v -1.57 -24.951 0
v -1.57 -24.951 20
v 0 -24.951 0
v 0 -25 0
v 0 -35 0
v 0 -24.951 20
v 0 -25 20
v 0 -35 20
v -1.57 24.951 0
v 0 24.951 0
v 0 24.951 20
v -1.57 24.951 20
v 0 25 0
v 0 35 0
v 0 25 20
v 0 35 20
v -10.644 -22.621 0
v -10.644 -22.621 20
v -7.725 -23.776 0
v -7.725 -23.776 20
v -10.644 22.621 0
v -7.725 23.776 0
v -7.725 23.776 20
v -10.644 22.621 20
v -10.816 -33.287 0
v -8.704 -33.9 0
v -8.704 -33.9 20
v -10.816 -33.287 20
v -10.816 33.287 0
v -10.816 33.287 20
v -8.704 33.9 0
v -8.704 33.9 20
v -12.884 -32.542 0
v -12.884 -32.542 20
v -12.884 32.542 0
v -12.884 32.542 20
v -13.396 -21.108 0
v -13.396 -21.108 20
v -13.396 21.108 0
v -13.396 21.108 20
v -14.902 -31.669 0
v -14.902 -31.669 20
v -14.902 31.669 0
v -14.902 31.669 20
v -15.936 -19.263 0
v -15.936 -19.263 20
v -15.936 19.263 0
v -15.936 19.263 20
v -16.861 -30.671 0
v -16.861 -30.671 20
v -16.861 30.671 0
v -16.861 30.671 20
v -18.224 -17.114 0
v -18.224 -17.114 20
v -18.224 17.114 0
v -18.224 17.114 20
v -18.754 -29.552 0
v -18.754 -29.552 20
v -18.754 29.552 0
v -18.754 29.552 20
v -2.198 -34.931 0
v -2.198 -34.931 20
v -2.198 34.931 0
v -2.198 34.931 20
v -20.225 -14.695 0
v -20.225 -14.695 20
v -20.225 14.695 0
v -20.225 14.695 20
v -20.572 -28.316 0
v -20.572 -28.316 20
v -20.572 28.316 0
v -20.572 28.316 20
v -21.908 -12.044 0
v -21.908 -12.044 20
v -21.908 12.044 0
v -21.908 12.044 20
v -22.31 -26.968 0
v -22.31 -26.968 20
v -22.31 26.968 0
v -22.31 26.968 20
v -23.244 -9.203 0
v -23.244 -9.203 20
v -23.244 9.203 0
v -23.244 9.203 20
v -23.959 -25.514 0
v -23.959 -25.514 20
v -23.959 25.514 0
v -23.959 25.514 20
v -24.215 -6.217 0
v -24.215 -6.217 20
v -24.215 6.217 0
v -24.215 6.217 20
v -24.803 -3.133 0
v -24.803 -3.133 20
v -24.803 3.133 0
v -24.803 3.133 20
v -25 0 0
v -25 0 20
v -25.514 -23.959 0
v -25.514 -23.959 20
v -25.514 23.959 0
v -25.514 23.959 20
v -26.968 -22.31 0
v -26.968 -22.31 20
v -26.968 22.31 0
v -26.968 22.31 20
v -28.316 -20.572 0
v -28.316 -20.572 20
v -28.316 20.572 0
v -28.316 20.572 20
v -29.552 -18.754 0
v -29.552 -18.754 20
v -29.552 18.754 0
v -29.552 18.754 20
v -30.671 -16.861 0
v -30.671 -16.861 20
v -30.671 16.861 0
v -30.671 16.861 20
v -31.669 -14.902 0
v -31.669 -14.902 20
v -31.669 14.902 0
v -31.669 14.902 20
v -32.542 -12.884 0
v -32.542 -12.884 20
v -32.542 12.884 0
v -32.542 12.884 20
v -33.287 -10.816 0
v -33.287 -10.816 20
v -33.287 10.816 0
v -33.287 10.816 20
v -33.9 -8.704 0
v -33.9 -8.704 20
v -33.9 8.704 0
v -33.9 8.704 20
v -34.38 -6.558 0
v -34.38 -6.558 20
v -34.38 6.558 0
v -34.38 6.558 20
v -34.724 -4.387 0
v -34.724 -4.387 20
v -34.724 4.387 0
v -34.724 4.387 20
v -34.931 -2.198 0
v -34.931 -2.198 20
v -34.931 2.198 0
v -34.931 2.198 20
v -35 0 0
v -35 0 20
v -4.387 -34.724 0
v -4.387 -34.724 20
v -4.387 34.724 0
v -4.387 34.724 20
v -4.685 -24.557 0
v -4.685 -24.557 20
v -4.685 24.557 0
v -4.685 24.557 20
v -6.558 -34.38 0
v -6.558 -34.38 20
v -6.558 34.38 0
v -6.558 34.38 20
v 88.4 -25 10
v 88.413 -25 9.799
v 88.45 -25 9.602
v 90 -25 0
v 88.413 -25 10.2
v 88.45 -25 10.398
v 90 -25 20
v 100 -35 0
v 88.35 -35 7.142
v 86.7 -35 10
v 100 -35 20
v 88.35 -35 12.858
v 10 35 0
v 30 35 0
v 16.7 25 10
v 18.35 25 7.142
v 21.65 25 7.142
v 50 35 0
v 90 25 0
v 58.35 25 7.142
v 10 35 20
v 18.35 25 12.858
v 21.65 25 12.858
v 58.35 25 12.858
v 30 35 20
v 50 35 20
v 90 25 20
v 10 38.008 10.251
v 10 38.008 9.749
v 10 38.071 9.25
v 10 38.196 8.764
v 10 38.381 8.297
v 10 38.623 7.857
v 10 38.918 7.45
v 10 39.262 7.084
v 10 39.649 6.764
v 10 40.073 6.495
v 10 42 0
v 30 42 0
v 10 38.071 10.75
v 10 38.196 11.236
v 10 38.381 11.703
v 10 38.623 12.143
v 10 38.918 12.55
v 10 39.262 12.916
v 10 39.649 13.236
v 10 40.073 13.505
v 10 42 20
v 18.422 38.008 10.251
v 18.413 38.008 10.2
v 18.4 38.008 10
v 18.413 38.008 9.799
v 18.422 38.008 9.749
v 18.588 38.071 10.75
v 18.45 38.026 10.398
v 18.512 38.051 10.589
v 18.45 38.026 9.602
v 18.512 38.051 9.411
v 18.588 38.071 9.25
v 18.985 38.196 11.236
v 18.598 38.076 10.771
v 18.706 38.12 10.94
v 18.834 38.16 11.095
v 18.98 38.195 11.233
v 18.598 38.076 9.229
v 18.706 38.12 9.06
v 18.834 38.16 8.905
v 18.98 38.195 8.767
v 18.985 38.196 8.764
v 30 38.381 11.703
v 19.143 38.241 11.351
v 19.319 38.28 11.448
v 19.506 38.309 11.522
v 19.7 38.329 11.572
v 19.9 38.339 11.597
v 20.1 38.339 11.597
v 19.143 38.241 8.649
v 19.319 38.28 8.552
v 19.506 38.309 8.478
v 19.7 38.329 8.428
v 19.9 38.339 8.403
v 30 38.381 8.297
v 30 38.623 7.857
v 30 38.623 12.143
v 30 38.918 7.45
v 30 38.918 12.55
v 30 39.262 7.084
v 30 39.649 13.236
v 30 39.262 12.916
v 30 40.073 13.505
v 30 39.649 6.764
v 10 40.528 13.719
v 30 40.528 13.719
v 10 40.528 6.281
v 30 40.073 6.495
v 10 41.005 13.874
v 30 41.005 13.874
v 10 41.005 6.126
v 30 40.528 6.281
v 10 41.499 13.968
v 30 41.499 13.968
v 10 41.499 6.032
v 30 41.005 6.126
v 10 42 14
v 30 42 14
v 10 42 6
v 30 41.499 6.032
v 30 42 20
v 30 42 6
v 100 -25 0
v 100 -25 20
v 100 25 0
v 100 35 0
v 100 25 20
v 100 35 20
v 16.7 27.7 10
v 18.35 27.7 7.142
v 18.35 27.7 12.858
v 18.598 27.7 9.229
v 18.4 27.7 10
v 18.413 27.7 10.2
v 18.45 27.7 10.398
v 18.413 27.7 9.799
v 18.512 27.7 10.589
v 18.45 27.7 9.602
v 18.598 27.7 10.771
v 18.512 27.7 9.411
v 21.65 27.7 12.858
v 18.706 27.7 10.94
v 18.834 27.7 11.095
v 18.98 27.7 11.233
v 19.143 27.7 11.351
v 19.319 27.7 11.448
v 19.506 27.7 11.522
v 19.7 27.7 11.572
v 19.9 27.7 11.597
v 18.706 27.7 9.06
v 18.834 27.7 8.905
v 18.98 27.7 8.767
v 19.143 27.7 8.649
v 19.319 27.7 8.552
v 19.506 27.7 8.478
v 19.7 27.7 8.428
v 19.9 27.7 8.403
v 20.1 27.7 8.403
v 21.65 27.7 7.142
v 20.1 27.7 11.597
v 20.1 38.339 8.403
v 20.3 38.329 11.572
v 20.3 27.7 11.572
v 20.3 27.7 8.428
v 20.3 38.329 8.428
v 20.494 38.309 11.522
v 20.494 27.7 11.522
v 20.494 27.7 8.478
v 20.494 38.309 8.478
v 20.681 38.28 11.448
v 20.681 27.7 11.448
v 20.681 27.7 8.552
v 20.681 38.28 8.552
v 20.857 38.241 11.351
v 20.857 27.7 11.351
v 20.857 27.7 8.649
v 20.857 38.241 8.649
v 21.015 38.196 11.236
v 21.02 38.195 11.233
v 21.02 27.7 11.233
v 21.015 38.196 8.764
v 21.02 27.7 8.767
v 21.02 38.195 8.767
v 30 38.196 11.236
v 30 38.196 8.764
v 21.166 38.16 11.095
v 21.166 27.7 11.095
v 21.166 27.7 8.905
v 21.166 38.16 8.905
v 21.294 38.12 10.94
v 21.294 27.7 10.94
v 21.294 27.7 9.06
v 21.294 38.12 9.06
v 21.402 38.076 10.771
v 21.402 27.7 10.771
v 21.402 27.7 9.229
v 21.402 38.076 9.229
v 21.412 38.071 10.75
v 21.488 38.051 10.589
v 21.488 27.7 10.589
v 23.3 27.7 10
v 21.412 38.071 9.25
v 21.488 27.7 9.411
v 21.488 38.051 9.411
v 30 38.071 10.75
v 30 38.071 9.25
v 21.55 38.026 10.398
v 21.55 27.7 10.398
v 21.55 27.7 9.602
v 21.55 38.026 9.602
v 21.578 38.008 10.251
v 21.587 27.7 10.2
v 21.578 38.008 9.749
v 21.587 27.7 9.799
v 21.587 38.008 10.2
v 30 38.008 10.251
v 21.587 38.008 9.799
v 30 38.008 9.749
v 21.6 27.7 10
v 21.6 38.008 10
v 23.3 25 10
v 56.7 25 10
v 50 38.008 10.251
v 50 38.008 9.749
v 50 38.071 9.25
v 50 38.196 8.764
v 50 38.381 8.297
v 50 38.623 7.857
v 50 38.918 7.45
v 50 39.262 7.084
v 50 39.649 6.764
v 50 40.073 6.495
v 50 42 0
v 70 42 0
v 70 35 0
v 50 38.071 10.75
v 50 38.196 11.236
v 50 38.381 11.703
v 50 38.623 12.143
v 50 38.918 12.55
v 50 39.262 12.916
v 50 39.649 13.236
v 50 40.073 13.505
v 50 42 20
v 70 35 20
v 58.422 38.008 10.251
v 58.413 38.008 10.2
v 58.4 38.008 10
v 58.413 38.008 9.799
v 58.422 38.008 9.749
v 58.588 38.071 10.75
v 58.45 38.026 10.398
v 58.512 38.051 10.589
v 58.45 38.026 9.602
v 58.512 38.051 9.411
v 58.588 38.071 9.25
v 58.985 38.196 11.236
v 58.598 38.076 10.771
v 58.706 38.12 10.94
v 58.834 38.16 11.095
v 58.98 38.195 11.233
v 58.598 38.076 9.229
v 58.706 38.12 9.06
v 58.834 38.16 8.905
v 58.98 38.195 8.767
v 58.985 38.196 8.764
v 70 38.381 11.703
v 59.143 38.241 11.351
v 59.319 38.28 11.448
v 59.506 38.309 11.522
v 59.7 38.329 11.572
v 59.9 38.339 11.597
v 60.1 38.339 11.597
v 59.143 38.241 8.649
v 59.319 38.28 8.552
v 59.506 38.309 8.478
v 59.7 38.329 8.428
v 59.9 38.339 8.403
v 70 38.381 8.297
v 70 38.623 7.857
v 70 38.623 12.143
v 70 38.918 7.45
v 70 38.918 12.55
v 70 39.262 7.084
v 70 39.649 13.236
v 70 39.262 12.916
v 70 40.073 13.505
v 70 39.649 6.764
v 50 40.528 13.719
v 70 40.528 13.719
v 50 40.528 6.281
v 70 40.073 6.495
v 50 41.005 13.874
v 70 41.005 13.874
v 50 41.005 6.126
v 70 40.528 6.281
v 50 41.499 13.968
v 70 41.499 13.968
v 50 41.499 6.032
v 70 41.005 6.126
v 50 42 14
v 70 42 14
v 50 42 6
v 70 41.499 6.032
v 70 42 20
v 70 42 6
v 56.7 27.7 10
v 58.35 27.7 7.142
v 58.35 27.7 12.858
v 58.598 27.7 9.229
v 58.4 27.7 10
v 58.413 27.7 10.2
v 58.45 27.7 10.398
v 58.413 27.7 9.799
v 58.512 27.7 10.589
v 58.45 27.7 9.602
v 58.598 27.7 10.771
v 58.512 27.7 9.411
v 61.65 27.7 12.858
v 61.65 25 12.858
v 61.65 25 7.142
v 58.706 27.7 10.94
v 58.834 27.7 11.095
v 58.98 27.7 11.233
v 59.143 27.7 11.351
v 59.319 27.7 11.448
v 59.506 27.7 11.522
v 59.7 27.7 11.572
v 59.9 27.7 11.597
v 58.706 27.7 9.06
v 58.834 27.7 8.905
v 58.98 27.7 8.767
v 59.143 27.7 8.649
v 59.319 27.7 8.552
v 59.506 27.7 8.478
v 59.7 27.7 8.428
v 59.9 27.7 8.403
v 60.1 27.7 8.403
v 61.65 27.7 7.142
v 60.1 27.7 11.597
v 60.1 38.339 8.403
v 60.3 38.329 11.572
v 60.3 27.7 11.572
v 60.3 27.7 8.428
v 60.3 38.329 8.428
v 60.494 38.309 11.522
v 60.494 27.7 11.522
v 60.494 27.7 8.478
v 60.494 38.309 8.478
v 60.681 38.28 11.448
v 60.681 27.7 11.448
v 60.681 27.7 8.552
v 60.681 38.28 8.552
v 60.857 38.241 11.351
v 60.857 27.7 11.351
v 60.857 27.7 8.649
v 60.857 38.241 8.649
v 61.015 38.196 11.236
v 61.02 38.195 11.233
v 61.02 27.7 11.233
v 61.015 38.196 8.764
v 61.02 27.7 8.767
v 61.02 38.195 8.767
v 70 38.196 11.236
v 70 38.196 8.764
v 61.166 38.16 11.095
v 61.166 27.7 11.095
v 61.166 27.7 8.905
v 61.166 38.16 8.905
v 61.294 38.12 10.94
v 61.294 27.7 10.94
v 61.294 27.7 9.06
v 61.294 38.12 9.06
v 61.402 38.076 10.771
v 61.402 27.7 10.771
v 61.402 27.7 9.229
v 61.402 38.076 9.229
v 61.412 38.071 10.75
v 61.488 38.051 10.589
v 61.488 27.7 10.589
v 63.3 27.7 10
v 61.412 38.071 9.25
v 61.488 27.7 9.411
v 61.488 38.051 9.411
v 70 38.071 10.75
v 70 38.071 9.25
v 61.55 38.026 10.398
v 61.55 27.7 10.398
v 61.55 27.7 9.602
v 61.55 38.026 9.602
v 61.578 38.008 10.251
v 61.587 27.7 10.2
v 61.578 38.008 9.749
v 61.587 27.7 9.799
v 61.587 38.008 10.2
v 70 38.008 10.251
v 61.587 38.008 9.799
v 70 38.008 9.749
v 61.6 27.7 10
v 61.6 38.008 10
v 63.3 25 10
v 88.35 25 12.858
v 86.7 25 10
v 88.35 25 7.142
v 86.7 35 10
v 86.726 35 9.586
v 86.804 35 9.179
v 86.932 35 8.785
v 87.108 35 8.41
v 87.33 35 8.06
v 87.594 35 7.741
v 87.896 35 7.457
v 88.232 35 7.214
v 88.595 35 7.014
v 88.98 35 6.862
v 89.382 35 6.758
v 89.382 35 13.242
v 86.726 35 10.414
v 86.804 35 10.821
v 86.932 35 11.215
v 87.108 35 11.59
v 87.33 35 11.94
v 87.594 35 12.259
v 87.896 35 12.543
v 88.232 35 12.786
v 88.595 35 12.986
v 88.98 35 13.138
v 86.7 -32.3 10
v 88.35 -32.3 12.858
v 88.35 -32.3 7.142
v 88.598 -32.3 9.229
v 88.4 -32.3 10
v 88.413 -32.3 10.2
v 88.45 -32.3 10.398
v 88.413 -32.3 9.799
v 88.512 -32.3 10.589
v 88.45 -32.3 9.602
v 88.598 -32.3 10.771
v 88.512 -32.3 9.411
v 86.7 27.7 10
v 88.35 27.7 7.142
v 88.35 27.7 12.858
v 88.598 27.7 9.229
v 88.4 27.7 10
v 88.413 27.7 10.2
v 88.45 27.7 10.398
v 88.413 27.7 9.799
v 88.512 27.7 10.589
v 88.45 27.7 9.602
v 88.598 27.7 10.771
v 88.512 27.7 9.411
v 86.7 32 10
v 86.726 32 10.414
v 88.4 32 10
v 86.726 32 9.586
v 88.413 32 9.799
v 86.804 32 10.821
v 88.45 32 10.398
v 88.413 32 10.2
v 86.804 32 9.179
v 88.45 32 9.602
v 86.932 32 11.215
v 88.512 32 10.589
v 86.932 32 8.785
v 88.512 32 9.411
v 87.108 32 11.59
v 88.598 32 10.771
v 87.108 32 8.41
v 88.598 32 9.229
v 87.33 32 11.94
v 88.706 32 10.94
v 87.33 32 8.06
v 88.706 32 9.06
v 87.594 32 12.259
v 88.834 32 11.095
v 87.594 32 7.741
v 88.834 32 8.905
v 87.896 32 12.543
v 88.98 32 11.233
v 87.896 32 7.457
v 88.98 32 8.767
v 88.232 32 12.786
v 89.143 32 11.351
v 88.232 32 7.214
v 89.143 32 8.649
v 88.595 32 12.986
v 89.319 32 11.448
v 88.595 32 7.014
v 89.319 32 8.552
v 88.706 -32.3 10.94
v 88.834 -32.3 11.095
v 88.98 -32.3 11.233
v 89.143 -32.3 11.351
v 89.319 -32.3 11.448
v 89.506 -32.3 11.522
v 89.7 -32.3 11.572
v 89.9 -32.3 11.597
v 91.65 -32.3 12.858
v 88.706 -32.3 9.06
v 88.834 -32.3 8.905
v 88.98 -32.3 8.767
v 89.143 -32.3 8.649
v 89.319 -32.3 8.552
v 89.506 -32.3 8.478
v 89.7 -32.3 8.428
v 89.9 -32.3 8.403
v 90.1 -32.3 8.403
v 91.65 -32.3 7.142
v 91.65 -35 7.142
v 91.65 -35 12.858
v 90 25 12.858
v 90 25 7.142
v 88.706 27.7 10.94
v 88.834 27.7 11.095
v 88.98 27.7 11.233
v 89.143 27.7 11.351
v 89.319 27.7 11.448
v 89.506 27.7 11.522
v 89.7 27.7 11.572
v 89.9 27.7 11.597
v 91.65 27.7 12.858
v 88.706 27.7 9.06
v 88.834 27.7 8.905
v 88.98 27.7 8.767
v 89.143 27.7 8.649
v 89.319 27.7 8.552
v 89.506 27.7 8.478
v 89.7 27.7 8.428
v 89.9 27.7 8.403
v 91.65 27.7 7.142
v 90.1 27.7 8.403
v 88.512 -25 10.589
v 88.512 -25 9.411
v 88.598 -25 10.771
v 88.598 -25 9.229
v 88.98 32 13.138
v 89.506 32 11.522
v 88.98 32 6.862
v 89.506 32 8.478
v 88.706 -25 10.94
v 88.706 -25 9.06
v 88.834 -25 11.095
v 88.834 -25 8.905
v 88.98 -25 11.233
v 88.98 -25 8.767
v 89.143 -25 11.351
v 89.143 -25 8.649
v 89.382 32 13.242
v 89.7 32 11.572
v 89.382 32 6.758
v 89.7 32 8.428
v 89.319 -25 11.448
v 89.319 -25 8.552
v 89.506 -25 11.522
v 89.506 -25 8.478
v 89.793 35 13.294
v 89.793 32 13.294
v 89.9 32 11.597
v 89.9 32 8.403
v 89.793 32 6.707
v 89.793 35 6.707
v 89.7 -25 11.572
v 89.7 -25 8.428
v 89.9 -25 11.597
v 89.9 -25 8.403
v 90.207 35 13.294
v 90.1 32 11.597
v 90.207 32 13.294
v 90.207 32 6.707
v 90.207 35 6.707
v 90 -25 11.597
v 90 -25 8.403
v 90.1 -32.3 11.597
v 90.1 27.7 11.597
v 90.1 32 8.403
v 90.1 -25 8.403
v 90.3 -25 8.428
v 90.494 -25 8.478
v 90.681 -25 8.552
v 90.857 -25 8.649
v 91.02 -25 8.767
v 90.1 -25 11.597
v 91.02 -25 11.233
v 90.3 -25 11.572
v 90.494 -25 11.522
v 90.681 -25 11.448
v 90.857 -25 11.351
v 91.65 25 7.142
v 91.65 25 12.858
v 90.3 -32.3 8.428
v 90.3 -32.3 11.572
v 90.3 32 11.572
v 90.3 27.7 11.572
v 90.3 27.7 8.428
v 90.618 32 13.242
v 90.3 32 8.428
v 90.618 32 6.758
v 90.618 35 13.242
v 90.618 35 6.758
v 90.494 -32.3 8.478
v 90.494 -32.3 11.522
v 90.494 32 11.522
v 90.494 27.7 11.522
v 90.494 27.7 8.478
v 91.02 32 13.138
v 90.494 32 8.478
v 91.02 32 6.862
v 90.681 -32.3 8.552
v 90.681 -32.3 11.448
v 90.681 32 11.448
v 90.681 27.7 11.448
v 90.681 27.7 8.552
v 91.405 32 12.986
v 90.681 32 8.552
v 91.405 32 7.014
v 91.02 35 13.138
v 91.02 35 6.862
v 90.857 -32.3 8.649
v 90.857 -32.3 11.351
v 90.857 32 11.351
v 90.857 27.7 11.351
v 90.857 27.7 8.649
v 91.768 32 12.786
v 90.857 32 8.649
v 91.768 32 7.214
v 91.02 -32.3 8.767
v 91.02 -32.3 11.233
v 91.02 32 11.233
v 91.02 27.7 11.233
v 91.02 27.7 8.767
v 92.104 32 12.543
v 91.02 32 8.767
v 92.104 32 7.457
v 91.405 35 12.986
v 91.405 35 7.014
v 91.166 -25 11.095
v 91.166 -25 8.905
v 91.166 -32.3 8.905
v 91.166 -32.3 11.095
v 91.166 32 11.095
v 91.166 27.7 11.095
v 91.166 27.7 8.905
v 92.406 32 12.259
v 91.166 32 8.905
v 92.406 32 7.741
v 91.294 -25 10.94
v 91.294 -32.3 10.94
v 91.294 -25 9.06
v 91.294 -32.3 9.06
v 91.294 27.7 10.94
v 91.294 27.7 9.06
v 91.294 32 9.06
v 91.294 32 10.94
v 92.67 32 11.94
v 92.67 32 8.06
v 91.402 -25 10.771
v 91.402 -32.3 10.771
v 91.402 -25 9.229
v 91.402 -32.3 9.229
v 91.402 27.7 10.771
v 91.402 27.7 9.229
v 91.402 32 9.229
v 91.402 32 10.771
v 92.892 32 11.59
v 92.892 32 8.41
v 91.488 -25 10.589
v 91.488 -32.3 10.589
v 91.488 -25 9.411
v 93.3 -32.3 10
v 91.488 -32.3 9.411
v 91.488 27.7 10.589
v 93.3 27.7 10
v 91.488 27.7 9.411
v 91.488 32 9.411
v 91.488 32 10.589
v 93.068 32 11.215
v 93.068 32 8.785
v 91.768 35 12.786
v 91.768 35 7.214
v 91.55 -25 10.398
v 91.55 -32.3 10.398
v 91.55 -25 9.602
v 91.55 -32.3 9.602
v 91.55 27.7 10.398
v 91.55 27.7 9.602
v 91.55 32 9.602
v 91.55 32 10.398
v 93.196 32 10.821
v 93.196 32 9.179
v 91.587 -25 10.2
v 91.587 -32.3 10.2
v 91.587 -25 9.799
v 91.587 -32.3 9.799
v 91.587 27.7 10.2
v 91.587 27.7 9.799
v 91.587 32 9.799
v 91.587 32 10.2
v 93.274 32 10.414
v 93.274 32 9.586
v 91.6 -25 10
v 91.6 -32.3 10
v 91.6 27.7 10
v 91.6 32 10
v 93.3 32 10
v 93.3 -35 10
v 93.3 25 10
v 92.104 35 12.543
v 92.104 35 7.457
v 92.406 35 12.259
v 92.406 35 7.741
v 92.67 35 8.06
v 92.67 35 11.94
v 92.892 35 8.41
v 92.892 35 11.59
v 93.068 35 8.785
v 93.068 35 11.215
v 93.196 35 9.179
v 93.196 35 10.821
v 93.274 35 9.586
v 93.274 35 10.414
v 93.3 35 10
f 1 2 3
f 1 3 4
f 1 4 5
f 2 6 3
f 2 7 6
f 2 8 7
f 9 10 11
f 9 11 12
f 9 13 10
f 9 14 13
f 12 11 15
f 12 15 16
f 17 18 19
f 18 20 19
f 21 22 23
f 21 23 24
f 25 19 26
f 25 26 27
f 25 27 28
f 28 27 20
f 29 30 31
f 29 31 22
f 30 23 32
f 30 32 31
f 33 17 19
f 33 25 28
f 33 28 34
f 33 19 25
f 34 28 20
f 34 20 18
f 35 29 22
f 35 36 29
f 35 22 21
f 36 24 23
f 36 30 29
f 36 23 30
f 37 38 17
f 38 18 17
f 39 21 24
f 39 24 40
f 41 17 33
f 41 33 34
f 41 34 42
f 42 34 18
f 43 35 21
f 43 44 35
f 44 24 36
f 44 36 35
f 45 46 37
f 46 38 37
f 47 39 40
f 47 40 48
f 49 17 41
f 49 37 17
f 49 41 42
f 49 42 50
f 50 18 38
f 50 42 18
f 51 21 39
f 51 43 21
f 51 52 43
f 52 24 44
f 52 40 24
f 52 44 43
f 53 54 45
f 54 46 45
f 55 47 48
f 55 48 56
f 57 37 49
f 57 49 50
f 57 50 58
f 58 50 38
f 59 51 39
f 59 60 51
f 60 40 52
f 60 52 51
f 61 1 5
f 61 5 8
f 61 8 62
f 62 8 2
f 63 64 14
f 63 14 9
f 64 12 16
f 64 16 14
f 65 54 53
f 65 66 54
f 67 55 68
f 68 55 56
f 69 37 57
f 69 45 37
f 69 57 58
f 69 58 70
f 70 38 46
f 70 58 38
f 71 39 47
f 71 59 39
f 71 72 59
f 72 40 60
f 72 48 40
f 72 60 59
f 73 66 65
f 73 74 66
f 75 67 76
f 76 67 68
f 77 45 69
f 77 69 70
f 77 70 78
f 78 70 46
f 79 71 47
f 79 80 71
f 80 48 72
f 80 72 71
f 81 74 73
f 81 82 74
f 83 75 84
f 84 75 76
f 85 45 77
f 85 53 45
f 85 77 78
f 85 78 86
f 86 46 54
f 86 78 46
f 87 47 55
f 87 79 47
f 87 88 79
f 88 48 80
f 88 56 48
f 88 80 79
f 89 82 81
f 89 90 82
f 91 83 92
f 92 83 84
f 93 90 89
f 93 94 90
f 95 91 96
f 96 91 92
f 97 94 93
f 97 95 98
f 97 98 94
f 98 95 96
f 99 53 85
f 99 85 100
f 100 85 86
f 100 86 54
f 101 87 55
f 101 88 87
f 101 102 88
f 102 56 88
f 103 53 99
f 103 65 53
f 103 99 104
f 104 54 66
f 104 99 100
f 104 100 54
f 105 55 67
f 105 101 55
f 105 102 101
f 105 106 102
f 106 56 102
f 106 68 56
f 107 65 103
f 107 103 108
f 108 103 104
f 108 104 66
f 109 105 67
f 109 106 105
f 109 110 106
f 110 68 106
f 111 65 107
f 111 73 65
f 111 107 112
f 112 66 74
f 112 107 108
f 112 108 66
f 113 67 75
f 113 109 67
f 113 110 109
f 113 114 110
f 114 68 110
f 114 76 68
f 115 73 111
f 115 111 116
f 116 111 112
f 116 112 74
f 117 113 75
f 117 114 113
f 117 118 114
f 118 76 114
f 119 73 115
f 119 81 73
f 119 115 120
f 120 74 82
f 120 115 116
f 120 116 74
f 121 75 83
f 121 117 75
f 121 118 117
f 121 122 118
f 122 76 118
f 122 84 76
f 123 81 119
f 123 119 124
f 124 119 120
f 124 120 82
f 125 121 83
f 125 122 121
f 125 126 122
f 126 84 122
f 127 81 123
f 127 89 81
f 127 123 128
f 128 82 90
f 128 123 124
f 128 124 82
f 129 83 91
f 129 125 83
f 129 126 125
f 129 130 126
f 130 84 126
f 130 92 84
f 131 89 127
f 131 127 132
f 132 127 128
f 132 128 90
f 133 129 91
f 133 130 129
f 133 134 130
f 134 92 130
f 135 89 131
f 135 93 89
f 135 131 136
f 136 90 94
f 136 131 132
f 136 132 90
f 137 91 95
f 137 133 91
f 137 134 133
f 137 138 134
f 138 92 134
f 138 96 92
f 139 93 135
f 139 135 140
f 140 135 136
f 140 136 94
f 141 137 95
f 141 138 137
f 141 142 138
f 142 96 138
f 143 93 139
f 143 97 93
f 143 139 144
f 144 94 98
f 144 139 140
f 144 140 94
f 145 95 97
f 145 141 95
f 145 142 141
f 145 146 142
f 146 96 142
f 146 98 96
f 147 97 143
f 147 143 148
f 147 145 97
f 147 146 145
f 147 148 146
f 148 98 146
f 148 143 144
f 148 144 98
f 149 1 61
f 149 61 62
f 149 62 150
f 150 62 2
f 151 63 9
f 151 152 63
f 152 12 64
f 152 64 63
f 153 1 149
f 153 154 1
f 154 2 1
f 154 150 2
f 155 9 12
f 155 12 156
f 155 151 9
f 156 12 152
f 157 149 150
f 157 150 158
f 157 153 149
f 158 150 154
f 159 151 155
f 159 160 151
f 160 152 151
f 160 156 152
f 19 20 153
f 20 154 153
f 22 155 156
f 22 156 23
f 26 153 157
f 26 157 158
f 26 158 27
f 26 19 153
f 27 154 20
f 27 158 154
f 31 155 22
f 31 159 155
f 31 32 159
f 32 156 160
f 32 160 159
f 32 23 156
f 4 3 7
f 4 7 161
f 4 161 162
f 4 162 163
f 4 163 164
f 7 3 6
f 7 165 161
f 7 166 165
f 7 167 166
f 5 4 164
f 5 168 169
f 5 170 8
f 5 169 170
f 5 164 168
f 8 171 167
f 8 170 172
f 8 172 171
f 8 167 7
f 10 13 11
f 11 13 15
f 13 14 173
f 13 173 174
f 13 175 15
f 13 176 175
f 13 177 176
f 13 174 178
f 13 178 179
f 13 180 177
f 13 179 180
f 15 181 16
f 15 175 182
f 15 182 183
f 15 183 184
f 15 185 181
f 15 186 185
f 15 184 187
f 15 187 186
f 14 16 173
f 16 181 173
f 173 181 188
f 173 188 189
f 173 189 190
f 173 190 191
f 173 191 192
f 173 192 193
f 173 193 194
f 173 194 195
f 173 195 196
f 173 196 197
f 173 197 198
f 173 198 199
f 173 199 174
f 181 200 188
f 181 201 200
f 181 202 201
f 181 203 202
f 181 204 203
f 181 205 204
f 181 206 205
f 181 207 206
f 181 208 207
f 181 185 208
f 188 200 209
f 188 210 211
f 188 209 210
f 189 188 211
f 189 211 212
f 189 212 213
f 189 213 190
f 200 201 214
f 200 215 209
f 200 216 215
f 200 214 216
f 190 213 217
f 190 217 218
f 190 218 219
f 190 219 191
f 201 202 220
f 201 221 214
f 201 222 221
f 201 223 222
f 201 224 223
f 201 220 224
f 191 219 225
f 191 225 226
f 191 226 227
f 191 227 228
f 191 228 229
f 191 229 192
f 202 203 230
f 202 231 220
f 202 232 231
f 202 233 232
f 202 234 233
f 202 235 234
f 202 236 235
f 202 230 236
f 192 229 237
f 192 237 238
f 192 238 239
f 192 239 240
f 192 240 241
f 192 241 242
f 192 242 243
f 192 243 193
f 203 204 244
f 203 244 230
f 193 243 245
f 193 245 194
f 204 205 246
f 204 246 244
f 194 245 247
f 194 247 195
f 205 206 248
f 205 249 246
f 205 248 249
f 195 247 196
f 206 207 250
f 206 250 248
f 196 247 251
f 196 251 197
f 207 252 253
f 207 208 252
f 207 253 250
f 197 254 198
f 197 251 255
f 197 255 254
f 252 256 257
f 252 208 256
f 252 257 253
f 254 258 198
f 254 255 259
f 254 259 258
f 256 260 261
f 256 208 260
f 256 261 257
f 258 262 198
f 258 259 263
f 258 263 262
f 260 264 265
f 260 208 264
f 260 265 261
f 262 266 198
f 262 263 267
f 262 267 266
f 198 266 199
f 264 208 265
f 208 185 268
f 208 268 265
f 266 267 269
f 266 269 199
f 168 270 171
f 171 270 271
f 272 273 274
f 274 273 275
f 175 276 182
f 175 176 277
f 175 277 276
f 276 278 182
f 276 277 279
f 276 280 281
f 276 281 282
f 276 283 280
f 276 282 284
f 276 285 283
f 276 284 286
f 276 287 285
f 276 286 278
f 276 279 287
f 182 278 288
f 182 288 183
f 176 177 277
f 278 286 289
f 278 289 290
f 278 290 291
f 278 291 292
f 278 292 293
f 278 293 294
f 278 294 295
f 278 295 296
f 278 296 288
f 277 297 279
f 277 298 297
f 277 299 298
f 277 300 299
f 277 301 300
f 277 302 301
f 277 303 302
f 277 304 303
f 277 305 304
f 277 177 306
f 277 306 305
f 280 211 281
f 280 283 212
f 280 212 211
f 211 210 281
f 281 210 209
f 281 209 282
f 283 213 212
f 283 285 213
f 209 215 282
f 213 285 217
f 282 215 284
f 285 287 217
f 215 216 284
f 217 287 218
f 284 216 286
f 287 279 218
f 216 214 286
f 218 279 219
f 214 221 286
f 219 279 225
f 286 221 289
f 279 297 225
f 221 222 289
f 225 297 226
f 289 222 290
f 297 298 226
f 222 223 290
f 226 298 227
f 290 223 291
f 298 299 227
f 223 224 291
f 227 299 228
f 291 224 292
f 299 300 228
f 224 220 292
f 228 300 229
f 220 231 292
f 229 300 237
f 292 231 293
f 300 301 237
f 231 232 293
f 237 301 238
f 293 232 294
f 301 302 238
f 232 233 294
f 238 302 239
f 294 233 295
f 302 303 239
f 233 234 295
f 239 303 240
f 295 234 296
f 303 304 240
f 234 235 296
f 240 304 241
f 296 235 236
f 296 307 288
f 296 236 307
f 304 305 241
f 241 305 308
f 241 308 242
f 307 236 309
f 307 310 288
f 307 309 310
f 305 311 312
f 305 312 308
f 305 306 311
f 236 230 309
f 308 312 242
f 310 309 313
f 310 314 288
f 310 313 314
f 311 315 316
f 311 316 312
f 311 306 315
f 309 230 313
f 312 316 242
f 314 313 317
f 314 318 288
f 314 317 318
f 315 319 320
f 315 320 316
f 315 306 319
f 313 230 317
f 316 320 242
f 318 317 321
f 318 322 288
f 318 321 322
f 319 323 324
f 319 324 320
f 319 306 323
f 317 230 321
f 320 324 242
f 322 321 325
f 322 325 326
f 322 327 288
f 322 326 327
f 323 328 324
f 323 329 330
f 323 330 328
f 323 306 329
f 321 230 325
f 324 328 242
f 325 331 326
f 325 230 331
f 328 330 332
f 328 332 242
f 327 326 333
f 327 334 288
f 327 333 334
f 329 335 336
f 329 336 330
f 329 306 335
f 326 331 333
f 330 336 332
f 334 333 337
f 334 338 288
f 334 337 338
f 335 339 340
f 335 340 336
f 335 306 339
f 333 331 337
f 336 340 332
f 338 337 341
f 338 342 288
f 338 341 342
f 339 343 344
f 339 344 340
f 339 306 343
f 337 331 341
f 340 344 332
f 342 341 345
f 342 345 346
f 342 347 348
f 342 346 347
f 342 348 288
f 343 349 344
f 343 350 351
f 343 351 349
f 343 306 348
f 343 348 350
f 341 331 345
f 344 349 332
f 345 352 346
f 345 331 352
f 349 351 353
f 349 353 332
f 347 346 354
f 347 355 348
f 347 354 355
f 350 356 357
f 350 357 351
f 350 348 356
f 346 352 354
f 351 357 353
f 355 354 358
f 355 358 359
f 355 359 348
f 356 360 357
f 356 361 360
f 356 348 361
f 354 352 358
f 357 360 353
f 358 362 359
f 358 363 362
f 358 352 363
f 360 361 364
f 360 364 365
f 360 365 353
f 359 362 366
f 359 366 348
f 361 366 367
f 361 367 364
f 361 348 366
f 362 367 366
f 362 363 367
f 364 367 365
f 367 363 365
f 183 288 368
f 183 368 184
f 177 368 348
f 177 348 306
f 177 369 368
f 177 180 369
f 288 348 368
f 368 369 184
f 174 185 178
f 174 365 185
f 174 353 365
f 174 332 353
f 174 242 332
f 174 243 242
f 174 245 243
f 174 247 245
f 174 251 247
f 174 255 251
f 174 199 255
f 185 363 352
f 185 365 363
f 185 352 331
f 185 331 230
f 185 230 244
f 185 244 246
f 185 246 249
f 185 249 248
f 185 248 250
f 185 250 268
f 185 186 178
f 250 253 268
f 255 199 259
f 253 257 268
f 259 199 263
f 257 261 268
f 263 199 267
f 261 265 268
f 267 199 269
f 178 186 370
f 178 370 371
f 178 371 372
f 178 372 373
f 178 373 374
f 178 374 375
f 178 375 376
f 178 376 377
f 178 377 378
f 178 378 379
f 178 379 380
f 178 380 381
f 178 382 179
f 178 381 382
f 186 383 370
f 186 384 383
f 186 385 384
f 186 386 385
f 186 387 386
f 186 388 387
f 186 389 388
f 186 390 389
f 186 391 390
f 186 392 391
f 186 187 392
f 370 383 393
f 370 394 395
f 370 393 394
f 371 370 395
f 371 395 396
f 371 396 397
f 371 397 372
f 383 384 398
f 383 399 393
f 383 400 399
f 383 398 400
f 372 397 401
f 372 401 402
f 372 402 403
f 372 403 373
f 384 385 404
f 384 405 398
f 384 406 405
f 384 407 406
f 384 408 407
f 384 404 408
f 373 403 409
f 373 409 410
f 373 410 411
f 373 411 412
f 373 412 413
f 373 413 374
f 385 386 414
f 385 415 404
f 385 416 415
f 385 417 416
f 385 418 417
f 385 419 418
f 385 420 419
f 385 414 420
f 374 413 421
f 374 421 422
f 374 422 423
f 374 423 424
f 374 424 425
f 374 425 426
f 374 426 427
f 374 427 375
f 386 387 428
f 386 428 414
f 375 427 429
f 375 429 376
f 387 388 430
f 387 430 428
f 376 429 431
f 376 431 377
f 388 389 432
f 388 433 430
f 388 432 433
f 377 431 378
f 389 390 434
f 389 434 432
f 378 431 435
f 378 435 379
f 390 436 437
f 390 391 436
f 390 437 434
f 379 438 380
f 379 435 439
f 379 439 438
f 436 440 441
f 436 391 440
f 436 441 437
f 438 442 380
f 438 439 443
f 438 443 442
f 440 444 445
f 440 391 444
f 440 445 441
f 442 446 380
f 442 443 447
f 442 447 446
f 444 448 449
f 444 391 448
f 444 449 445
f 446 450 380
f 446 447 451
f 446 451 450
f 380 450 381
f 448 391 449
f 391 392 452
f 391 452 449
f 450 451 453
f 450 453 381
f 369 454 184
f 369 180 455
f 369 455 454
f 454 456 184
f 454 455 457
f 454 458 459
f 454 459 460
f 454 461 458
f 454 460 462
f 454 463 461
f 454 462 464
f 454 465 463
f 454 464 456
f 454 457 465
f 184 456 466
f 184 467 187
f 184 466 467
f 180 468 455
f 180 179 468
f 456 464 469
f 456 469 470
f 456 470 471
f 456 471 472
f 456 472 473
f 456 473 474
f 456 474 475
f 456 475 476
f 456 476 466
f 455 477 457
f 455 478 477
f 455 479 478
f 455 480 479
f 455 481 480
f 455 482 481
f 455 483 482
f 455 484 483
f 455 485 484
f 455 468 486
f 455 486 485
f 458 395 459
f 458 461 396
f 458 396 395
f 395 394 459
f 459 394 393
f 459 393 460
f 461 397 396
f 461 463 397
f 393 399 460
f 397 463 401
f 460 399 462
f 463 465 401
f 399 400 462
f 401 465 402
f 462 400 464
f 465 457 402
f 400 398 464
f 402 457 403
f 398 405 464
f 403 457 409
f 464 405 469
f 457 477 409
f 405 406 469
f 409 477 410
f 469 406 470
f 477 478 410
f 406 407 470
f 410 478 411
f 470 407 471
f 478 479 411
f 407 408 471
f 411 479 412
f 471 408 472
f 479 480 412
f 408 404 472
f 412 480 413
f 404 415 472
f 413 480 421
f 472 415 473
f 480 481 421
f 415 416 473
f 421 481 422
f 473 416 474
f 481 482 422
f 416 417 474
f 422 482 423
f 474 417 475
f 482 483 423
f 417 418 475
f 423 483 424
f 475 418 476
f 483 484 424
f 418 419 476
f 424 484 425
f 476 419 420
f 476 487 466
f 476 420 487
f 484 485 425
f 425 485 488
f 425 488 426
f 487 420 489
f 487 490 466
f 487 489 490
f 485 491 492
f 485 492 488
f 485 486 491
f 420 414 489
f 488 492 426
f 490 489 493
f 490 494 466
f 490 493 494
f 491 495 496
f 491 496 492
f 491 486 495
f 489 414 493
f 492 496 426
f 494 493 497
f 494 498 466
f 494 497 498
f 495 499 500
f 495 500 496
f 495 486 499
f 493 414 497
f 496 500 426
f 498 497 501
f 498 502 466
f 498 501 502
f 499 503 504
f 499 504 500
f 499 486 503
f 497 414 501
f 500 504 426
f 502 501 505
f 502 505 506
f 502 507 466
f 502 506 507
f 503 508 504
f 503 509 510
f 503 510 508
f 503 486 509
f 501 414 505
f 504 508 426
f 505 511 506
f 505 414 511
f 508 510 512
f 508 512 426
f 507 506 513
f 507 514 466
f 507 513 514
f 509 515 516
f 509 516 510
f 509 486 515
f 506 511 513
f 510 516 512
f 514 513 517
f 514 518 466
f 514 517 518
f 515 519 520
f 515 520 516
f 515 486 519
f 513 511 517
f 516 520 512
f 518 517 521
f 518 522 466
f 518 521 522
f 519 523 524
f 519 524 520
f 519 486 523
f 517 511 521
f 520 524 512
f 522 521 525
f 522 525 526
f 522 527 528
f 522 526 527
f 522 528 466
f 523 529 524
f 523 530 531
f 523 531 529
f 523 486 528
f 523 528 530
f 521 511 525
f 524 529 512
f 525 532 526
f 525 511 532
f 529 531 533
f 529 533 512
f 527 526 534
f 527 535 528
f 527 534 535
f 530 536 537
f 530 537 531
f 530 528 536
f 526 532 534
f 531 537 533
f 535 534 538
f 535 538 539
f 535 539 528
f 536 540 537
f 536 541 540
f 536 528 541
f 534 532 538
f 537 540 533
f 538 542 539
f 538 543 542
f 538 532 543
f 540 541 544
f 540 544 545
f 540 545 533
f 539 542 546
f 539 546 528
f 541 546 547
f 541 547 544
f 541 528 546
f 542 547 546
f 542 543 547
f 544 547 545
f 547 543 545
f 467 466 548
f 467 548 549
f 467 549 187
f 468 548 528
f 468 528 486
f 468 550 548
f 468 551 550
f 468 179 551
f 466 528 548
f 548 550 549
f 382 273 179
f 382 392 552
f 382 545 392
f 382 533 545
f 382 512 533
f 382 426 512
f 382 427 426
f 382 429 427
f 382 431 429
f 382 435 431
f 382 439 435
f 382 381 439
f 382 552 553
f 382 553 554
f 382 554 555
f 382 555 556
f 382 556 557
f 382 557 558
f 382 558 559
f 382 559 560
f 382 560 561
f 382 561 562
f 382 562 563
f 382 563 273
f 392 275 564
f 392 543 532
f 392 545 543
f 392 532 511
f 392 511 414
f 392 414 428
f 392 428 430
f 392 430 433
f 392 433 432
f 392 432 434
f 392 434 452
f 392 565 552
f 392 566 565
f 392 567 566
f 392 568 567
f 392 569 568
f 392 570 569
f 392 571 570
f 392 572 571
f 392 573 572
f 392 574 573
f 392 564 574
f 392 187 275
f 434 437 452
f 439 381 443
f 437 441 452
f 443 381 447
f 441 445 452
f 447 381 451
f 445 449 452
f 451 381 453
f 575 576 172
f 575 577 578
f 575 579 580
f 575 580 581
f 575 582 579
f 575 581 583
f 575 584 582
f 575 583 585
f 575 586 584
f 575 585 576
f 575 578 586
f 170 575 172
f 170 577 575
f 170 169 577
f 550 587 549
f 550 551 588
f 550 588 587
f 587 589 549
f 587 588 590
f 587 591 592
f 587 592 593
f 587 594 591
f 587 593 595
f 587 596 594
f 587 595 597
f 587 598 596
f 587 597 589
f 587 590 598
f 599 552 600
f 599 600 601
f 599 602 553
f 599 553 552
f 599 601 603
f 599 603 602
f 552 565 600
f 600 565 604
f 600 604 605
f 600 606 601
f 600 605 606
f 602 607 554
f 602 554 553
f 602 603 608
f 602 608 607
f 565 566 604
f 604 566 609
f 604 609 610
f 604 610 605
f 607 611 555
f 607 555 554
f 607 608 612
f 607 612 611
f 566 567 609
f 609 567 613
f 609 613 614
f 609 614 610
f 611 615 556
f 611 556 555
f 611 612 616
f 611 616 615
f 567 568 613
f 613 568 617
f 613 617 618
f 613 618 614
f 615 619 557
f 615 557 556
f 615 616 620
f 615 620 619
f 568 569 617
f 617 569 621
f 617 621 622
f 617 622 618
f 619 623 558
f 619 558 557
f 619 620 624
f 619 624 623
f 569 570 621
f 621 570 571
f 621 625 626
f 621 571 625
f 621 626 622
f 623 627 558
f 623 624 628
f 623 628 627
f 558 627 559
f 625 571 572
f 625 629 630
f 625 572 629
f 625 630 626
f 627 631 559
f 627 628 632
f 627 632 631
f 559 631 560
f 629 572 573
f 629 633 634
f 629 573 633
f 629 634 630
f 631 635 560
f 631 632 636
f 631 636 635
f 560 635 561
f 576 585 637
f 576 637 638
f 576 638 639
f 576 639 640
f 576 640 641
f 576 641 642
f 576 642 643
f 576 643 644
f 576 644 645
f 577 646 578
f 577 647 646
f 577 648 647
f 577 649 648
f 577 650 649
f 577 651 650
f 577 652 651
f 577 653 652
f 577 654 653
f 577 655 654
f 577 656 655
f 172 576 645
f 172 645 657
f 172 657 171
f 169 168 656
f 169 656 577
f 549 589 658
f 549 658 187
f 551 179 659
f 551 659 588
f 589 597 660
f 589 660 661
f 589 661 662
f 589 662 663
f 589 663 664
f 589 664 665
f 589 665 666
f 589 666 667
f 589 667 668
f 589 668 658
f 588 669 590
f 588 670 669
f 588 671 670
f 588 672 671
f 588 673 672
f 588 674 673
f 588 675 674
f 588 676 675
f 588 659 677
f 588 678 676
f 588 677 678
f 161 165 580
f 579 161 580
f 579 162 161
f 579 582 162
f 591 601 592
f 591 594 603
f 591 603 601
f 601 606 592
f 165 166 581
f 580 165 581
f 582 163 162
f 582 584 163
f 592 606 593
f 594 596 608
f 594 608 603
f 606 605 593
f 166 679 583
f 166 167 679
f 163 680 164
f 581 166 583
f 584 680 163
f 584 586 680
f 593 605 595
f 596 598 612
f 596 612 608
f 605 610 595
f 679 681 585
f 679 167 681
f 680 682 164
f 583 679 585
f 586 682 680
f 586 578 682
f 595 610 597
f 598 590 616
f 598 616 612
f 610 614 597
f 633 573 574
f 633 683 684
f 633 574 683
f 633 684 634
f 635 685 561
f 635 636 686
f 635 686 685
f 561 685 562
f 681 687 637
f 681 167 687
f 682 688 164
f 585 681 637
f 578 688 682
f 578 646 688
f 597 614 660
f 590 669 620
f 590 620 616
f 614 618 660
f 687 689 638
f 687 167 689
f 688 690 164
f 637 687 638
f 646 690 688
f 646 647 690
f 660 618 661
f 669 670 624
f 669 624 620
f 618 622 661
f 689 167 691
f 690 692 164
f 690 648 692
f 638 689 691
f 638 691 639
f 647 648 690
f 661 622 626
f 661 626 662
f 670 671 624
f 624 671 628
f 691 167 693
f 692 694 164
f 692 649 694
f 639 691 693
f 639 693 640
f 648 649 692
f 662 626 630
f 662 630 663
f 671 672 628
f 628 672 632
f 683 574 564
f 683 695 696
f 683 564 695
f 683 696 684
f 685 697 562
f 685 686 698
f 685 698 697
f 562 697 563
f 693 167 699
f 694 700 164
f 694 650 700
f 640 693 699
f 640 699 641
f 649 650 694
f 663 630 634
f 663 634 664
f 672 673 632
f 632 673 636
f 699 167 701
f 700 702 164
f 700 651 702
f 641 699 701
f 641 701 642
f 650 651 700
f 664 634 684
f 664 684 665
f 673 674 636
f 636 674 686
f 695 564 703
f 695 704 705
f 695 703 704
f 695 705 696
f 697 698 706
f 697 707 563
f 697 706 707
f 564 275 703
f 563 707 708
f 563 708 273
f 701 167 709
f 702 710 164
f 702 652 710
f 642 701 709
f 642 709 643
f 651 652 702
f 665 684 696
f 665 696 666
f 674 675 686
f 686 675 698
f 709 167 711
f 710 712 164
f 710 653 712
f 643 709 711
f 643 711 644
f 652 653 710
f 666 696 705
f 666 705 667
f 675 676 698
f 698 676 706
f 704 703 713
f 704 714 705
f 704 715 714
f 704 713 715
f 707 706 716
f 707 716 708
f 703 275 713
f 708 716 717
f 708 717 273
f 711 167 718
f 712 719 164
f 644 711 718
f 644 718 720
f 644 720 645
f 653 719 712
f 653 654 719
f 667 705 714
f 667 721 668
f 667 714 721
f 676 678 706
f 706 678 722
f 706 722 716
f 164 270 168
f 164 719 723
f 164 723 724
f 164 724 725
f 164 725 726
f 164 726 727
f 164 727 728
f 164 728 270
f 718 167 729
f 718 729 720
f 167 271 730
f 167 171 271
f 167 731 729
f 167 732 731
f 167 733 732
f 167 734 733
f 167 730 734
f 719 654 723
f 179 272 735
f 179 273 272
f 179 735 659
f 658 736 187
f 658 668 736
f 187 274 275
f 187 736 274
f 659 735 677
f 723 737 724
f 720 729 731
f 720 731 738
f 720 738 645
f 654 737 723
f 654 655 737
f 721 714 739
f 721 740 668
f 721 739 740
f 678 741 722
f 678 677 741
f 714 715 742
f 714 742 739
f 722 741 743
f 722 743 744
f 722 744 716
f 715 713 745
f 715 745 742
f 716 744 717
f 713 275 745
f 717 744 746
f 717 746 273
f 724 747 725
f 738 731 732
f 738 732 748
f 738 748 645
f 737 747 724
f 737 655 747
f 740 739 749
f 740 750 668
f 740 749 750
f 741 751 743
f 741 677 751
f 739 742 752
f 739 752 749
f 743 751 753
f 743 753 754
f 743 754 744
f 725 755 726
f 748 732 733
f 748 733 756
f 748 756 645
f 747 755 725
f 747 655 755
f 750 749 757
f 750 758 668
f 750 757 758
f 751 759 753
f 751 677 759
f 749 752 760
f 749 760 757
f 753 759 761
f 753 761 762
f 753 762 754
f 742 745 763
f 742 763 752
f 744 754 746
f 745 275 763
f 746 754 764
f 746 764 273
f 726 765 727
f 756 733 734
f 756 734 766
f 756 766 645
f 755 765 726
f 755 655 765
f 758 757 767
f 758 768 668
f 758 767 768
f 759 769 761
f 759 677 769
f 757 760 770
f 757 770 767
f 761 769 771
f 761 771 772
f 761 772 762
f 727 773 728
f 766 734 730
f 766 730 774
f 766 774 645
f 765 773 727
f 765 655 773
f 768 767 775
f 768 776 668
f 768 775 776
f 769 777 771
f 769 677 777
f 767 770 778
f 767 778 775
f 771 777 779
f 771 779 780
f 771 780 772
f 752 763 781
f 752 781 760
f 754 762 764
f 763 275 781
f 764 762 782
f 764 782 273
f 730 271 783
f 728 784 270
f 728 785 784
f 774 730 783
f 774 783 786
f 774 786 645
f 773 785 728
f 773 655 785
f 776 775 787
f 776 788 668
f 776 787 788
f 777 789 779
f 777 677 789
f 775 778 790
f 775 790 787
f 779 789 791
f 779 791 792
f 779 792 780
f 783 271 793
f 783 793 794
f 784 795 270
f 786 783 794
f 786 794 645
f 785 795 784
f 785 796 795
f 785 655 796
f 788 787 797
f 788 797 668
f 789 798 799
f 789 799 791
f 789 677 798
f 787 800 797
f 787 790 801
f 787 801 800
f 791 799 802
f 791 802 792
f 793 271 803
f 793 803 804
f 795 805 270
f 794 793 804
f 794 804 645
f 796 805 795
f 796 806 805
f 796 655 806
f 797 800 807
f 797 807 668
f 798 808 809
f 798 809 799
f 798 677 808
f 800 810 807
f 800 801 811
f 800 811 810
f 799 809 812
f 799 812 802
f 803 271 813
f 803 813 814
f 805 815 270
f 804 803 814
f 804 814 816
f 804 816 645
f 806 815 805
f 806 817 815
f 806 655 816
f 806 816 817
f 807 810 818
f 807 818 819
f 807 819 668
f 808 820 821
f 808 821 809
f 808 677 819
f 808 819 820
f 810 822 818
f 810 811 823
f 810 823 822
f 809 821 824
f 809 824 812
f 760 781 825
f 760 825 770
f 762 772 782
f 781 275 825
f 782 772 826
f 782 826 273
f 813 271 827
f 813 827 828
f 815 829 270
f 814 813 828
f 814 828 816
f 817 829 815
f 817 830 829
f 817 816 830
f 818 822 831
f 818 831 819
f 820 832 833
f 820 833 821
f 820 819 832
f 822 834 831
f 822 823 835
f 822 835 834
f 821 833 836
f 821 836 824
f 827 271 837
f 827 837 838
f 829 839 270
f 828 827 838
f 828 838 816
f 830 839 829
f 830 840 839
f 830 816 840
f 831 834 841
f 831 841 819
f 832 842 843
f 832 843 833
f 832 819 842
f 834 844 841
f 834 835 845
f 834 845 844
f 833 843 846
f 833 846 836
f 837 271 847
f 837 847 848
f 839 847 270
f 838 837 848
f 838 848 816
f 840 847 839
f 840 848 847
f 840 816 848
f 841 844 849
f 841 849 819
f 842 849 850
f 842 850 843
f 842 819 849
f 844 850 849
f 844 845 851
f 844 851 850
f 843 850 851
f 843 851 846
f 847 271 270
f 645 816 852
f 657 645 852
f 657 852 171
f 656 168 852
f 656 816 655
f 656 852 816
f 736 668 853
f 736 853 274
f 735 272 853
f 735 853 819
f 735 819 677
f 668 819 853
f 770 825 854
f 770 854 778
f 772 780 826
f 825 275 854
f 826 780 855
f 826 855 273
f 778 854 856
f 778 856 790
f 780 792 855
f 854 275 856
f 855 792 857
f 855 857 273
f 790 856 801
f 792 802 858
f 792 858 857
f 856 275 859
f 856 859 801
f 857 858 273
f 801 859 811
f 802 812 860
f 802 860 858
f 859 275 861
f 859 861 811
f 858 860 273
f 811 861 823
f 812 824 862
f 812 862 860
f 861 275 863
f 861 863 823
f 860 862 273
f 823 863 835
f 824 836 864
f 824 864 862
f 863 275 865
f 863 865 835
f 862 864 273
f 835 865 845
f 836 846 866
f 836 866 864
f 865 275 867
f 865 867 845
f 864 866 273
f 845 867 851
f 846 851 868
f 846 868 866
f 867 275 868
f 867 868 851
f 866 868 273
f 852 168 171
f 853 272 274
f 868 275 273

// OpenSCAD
fork_wheel_width = 50 ;
fork_thickness = 20;
fork_width = 10 ;
fork_hole_diameter = 10 ;
length = 100;

pipe_diameter = 8;
pipe_holder_length = 20;
pipe_holder_thickness = pipe_diameter/2+3;

pipe_holder1_pos = 10;
pipe_holder2_pos = 50;
pipe_holder_space =3;

include <../Parameters.scad>

M3_screw_head_diameter = M3_nut_diameter;


module 888_1027() {
    difference() {
      union () {
        difference() {
            union () {
                cylinder ( h=fork_thickness, d=2*fork_width+fork_wheel_width, $fn=100);

                translate ([0,fork_wheel_width/2,0])
                    cube ([length,fork_width,fork_thickness]);

                translate ([0,-(fork_wheel_width/2+fork_width),0])
                    cube ([length,fork_width,fork_thickness]);
            }

            translate([0, 0, -10])
                cylinder ( h=fork_thickness+20, d=fork_wheel_width, $fn=50);

            translate([0,-(fork_wheel_width/2),-10])
                cube ([2*fork_width+fork_wheel_width+20,fork_wheel_width,fork_thickness+20 ]);

            rotate ([90,0,0,]) {
                translate([length-0.1*length, fork_thickness/2, 0])
                  cylinder (h=2*fork_width+fork_wheel_width+20, d=M3_screw_diameter, center=true, $fn=50);

                translate([length-0.1*length, fork_thickness/2, -(0.5*fork_wheel_width+M3_nut_height)])
                  cylinder (h=fork_width, d=M3_nut_diameter, $fn=6);

                translate([length-0.1*length,fork_thickness/2,-((0.5*fork_wheel_width)+(2*fork_width)-M3_screw_head_height)])
                  cylinder (h=fork_width, d=M3_screw_head_diameter, $fn=50);

                translate([length-0.1*length, fork_thickness/2, 0.5*fork_wheel_width+fork_width-M3_nut_height])
                  cylinder (h=fork_width, d=M3_nut_diameter, $fn=6);
            }
        }

        difference() {
            translate([pipe_holder1_pos,fork_wheel_width/2+fork_width, 0])
              cube ([pipe_holder_length, pipe_holder_thickness, fork_thickness]);
            rotate ([0,90,0])
              translate([-fork_thickness/2, fork_wheel_width/2+fork_width+pipe_diameter/2+pipe_holder_space, 0])
                cylinder(h=length, d=pipe_diameter, $fn=50);
        }

        difference() {
            translate([pipe_holder2_pos,fork_wheel_width/2+fork_width, 0])
              cube ([pipe_holder_length, pipe_holder_thickness, fork_thickness]);
            rotate ([0,90,0])
              translate([-fork_thickness/2, fork_wheel_width/2+fork_width+pipe_diameter/2+pipe_holder_space, 0])
                  cylinder(h=length, d=pipe_diameter, $fn=50);
        }
      };
      rotate ([90,0,0,]) {
          translate([pipe_holder2_pos+pipe_holder_length/2, fork_thickness/2, -fork_wheel_width])
            cylinder (h=fork_wheel_width, d=M3_screw_diameter, $fn=50);

          translate([pipe_holder2_pos+pipe_holder_length/2, fork_thickness/2, -(0.5*fork_wheel_width+M3_nut_height)])
            cylinder (h=fork_width, d=M3_nut_diameter, $fn=6);
        };
      rotate ([90,0,0,]) {
          translate([pipe_holder1_pos+pipe_holder_length/2, fork_thickness/2, -fork_wheel_width])
            cylinder (h=fork_wheel_width, d=M3_screw_diameter, $fn=50);

          translate([pipe_holder1_pos+pipe_holder_length/2, fork_thickness/2, -(0.5*fork_wheel_width+M3_nut_height)])
            cylinder (h=fork_width, d=M3_nut_diameter, $fn=6);
      }
    }
}

888_1027() ;
